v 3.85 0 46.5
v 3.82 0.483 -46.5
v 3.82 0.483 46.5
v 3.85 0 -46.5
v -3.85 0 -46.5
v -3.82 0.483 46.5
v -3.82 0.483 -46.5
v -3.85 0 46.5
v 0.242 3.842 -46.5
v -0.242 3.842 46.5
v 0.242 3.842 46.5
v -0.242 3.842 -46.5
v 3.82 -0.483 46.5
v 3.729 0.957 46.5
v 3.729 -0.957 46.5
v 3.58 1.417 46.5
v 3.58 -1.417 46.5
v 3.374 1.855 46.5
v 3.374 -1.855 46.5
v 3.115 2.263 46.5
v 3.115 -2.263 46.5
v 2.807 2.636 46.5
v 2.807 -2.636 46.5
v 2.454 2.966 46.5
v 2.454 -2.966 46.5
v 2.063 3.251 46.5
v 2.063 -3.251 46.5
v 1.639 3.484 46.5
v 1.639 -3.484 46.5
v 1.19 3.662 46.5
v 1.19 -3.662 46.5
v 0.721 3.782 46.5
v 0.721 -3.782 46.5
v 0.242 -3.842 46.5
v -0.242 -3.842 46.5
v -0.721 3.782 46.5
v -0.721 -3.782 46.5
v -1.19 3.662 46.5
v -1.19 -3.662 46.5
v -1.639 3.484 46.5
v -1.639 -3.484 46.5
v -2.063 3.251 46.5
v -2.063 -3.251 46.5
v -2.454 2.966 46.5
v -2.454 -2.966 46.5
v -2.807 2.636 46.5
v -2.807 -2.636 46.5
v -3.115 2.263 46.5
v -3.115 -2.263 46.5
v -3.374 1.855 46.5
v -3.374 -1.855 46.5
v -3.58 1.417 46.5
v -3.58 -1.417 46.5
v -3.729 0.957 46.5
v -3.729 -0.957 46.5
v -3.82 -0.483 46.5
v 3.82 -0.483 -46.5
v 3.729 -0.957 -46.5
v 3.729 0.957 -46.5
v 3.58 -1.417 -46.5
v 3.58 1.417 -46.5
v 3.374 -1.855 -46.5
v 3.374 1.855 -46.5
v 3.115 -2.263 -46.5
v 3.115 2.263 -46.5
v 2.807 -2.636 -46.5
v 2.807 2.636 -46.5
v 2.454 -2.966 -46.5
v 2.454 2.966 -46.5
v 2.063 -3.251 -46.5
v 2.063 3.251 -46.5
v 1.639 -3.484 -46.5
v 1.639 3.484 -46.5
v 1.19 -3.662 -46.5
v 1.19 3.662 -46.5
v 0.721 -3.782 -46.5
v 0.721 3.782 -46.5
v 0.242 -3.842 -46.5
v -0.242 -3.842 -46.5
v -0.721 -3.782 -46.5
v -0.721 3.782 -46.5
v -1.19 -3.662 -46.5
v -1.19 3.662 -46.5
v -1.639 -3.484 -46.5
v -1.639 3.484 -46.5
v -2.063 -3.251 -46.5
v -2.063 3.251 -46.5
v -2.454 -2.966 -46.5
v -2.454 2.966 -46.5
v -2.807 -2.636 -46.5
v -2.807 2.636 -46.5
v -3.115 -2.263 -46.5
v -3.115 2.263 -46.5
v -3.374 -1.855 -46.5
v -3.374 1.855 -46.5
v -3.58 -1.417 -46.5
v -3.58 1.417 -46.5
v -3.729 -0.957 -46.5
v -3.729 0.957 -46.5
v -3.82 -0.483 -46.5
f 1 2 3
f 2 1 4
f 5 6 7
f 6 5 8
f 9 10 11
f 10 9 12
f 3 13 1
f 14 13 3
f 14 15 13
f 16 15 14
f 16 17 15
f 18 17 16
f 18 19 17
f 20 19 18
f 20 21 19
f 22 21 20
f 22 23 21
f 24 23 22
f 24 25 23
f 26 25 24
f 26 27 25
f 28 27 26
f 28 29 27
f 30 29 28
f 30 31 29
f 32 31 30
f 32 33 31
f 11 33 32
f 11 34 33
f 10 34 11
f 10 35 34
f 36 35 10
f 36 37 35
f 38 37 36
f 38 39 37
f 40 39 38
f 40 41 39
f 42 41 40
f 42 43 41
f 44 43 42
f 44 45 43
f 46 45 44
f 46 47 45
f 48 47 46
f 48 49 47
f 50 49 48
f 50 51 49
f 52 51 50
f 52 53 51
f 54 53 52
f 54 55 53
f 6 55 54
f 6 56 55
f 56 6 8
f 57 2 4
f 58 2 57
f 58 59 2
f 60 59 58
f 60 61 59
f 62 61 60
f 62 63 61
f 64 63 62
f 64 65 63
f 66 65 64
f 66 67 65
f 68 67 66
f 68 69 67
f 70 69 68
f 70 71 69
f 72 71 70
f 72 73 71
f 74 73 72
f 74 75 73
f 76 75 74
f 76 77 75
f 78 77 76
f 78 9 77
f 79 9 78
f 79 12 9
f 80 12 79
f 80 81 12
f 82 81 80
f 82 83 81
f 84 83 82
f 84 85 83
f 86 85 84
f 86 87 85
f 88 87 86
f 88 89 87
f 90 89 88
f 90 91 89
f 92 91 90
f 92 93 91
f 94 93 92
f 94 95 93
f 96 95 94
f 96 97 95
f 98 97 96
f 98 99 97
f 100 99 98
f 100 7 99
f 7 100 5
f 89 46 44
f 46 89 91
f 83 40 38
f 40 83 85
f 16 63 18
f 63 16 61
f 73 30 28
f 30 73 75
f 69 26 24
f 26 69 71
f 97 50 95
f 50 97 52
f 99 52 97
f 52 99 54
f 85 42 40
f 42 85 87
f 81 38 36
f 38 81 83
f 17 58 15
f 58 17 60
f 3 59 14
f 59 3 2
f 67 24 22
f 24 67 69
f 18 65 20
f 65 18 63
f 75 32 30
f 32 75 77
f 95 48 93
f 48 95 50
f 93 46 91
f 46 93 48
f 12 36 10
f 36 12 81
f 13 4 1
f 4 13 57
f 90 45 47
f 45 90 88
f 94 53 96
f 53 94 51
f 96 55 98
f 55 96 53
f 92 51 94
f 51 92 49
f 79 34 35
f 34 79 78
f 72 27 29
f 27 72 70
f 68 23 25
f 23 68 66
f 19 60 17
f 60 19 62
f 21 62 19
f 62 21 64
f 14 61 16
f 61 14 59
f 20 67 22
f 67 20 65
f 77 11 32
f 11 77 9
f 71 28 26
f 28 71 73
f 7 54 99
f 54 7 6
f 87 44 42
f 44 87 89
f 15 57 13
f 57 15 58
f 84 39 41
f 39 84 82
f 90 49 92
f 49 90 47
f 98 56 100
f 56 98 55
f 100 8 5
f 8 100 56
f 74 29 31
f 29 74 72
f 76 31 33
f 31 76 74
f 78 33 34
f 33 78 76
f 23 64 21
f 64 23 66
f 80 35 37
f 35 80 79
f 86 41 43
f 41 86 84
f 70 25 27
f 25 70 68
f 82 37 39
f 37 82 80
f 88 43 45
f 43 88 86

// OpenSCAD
$fn = 50;


difference() {
	union() {
		translate(v = [0, 0, -46.5000000000]) {
			cylinder(h = 93, r = 3.8500000000);
		}
	}
	union() {
		translate(v = [0, 0, -100.0000000000]) {
			cylinder(h = 200, r = 0);
		}
	}
}
